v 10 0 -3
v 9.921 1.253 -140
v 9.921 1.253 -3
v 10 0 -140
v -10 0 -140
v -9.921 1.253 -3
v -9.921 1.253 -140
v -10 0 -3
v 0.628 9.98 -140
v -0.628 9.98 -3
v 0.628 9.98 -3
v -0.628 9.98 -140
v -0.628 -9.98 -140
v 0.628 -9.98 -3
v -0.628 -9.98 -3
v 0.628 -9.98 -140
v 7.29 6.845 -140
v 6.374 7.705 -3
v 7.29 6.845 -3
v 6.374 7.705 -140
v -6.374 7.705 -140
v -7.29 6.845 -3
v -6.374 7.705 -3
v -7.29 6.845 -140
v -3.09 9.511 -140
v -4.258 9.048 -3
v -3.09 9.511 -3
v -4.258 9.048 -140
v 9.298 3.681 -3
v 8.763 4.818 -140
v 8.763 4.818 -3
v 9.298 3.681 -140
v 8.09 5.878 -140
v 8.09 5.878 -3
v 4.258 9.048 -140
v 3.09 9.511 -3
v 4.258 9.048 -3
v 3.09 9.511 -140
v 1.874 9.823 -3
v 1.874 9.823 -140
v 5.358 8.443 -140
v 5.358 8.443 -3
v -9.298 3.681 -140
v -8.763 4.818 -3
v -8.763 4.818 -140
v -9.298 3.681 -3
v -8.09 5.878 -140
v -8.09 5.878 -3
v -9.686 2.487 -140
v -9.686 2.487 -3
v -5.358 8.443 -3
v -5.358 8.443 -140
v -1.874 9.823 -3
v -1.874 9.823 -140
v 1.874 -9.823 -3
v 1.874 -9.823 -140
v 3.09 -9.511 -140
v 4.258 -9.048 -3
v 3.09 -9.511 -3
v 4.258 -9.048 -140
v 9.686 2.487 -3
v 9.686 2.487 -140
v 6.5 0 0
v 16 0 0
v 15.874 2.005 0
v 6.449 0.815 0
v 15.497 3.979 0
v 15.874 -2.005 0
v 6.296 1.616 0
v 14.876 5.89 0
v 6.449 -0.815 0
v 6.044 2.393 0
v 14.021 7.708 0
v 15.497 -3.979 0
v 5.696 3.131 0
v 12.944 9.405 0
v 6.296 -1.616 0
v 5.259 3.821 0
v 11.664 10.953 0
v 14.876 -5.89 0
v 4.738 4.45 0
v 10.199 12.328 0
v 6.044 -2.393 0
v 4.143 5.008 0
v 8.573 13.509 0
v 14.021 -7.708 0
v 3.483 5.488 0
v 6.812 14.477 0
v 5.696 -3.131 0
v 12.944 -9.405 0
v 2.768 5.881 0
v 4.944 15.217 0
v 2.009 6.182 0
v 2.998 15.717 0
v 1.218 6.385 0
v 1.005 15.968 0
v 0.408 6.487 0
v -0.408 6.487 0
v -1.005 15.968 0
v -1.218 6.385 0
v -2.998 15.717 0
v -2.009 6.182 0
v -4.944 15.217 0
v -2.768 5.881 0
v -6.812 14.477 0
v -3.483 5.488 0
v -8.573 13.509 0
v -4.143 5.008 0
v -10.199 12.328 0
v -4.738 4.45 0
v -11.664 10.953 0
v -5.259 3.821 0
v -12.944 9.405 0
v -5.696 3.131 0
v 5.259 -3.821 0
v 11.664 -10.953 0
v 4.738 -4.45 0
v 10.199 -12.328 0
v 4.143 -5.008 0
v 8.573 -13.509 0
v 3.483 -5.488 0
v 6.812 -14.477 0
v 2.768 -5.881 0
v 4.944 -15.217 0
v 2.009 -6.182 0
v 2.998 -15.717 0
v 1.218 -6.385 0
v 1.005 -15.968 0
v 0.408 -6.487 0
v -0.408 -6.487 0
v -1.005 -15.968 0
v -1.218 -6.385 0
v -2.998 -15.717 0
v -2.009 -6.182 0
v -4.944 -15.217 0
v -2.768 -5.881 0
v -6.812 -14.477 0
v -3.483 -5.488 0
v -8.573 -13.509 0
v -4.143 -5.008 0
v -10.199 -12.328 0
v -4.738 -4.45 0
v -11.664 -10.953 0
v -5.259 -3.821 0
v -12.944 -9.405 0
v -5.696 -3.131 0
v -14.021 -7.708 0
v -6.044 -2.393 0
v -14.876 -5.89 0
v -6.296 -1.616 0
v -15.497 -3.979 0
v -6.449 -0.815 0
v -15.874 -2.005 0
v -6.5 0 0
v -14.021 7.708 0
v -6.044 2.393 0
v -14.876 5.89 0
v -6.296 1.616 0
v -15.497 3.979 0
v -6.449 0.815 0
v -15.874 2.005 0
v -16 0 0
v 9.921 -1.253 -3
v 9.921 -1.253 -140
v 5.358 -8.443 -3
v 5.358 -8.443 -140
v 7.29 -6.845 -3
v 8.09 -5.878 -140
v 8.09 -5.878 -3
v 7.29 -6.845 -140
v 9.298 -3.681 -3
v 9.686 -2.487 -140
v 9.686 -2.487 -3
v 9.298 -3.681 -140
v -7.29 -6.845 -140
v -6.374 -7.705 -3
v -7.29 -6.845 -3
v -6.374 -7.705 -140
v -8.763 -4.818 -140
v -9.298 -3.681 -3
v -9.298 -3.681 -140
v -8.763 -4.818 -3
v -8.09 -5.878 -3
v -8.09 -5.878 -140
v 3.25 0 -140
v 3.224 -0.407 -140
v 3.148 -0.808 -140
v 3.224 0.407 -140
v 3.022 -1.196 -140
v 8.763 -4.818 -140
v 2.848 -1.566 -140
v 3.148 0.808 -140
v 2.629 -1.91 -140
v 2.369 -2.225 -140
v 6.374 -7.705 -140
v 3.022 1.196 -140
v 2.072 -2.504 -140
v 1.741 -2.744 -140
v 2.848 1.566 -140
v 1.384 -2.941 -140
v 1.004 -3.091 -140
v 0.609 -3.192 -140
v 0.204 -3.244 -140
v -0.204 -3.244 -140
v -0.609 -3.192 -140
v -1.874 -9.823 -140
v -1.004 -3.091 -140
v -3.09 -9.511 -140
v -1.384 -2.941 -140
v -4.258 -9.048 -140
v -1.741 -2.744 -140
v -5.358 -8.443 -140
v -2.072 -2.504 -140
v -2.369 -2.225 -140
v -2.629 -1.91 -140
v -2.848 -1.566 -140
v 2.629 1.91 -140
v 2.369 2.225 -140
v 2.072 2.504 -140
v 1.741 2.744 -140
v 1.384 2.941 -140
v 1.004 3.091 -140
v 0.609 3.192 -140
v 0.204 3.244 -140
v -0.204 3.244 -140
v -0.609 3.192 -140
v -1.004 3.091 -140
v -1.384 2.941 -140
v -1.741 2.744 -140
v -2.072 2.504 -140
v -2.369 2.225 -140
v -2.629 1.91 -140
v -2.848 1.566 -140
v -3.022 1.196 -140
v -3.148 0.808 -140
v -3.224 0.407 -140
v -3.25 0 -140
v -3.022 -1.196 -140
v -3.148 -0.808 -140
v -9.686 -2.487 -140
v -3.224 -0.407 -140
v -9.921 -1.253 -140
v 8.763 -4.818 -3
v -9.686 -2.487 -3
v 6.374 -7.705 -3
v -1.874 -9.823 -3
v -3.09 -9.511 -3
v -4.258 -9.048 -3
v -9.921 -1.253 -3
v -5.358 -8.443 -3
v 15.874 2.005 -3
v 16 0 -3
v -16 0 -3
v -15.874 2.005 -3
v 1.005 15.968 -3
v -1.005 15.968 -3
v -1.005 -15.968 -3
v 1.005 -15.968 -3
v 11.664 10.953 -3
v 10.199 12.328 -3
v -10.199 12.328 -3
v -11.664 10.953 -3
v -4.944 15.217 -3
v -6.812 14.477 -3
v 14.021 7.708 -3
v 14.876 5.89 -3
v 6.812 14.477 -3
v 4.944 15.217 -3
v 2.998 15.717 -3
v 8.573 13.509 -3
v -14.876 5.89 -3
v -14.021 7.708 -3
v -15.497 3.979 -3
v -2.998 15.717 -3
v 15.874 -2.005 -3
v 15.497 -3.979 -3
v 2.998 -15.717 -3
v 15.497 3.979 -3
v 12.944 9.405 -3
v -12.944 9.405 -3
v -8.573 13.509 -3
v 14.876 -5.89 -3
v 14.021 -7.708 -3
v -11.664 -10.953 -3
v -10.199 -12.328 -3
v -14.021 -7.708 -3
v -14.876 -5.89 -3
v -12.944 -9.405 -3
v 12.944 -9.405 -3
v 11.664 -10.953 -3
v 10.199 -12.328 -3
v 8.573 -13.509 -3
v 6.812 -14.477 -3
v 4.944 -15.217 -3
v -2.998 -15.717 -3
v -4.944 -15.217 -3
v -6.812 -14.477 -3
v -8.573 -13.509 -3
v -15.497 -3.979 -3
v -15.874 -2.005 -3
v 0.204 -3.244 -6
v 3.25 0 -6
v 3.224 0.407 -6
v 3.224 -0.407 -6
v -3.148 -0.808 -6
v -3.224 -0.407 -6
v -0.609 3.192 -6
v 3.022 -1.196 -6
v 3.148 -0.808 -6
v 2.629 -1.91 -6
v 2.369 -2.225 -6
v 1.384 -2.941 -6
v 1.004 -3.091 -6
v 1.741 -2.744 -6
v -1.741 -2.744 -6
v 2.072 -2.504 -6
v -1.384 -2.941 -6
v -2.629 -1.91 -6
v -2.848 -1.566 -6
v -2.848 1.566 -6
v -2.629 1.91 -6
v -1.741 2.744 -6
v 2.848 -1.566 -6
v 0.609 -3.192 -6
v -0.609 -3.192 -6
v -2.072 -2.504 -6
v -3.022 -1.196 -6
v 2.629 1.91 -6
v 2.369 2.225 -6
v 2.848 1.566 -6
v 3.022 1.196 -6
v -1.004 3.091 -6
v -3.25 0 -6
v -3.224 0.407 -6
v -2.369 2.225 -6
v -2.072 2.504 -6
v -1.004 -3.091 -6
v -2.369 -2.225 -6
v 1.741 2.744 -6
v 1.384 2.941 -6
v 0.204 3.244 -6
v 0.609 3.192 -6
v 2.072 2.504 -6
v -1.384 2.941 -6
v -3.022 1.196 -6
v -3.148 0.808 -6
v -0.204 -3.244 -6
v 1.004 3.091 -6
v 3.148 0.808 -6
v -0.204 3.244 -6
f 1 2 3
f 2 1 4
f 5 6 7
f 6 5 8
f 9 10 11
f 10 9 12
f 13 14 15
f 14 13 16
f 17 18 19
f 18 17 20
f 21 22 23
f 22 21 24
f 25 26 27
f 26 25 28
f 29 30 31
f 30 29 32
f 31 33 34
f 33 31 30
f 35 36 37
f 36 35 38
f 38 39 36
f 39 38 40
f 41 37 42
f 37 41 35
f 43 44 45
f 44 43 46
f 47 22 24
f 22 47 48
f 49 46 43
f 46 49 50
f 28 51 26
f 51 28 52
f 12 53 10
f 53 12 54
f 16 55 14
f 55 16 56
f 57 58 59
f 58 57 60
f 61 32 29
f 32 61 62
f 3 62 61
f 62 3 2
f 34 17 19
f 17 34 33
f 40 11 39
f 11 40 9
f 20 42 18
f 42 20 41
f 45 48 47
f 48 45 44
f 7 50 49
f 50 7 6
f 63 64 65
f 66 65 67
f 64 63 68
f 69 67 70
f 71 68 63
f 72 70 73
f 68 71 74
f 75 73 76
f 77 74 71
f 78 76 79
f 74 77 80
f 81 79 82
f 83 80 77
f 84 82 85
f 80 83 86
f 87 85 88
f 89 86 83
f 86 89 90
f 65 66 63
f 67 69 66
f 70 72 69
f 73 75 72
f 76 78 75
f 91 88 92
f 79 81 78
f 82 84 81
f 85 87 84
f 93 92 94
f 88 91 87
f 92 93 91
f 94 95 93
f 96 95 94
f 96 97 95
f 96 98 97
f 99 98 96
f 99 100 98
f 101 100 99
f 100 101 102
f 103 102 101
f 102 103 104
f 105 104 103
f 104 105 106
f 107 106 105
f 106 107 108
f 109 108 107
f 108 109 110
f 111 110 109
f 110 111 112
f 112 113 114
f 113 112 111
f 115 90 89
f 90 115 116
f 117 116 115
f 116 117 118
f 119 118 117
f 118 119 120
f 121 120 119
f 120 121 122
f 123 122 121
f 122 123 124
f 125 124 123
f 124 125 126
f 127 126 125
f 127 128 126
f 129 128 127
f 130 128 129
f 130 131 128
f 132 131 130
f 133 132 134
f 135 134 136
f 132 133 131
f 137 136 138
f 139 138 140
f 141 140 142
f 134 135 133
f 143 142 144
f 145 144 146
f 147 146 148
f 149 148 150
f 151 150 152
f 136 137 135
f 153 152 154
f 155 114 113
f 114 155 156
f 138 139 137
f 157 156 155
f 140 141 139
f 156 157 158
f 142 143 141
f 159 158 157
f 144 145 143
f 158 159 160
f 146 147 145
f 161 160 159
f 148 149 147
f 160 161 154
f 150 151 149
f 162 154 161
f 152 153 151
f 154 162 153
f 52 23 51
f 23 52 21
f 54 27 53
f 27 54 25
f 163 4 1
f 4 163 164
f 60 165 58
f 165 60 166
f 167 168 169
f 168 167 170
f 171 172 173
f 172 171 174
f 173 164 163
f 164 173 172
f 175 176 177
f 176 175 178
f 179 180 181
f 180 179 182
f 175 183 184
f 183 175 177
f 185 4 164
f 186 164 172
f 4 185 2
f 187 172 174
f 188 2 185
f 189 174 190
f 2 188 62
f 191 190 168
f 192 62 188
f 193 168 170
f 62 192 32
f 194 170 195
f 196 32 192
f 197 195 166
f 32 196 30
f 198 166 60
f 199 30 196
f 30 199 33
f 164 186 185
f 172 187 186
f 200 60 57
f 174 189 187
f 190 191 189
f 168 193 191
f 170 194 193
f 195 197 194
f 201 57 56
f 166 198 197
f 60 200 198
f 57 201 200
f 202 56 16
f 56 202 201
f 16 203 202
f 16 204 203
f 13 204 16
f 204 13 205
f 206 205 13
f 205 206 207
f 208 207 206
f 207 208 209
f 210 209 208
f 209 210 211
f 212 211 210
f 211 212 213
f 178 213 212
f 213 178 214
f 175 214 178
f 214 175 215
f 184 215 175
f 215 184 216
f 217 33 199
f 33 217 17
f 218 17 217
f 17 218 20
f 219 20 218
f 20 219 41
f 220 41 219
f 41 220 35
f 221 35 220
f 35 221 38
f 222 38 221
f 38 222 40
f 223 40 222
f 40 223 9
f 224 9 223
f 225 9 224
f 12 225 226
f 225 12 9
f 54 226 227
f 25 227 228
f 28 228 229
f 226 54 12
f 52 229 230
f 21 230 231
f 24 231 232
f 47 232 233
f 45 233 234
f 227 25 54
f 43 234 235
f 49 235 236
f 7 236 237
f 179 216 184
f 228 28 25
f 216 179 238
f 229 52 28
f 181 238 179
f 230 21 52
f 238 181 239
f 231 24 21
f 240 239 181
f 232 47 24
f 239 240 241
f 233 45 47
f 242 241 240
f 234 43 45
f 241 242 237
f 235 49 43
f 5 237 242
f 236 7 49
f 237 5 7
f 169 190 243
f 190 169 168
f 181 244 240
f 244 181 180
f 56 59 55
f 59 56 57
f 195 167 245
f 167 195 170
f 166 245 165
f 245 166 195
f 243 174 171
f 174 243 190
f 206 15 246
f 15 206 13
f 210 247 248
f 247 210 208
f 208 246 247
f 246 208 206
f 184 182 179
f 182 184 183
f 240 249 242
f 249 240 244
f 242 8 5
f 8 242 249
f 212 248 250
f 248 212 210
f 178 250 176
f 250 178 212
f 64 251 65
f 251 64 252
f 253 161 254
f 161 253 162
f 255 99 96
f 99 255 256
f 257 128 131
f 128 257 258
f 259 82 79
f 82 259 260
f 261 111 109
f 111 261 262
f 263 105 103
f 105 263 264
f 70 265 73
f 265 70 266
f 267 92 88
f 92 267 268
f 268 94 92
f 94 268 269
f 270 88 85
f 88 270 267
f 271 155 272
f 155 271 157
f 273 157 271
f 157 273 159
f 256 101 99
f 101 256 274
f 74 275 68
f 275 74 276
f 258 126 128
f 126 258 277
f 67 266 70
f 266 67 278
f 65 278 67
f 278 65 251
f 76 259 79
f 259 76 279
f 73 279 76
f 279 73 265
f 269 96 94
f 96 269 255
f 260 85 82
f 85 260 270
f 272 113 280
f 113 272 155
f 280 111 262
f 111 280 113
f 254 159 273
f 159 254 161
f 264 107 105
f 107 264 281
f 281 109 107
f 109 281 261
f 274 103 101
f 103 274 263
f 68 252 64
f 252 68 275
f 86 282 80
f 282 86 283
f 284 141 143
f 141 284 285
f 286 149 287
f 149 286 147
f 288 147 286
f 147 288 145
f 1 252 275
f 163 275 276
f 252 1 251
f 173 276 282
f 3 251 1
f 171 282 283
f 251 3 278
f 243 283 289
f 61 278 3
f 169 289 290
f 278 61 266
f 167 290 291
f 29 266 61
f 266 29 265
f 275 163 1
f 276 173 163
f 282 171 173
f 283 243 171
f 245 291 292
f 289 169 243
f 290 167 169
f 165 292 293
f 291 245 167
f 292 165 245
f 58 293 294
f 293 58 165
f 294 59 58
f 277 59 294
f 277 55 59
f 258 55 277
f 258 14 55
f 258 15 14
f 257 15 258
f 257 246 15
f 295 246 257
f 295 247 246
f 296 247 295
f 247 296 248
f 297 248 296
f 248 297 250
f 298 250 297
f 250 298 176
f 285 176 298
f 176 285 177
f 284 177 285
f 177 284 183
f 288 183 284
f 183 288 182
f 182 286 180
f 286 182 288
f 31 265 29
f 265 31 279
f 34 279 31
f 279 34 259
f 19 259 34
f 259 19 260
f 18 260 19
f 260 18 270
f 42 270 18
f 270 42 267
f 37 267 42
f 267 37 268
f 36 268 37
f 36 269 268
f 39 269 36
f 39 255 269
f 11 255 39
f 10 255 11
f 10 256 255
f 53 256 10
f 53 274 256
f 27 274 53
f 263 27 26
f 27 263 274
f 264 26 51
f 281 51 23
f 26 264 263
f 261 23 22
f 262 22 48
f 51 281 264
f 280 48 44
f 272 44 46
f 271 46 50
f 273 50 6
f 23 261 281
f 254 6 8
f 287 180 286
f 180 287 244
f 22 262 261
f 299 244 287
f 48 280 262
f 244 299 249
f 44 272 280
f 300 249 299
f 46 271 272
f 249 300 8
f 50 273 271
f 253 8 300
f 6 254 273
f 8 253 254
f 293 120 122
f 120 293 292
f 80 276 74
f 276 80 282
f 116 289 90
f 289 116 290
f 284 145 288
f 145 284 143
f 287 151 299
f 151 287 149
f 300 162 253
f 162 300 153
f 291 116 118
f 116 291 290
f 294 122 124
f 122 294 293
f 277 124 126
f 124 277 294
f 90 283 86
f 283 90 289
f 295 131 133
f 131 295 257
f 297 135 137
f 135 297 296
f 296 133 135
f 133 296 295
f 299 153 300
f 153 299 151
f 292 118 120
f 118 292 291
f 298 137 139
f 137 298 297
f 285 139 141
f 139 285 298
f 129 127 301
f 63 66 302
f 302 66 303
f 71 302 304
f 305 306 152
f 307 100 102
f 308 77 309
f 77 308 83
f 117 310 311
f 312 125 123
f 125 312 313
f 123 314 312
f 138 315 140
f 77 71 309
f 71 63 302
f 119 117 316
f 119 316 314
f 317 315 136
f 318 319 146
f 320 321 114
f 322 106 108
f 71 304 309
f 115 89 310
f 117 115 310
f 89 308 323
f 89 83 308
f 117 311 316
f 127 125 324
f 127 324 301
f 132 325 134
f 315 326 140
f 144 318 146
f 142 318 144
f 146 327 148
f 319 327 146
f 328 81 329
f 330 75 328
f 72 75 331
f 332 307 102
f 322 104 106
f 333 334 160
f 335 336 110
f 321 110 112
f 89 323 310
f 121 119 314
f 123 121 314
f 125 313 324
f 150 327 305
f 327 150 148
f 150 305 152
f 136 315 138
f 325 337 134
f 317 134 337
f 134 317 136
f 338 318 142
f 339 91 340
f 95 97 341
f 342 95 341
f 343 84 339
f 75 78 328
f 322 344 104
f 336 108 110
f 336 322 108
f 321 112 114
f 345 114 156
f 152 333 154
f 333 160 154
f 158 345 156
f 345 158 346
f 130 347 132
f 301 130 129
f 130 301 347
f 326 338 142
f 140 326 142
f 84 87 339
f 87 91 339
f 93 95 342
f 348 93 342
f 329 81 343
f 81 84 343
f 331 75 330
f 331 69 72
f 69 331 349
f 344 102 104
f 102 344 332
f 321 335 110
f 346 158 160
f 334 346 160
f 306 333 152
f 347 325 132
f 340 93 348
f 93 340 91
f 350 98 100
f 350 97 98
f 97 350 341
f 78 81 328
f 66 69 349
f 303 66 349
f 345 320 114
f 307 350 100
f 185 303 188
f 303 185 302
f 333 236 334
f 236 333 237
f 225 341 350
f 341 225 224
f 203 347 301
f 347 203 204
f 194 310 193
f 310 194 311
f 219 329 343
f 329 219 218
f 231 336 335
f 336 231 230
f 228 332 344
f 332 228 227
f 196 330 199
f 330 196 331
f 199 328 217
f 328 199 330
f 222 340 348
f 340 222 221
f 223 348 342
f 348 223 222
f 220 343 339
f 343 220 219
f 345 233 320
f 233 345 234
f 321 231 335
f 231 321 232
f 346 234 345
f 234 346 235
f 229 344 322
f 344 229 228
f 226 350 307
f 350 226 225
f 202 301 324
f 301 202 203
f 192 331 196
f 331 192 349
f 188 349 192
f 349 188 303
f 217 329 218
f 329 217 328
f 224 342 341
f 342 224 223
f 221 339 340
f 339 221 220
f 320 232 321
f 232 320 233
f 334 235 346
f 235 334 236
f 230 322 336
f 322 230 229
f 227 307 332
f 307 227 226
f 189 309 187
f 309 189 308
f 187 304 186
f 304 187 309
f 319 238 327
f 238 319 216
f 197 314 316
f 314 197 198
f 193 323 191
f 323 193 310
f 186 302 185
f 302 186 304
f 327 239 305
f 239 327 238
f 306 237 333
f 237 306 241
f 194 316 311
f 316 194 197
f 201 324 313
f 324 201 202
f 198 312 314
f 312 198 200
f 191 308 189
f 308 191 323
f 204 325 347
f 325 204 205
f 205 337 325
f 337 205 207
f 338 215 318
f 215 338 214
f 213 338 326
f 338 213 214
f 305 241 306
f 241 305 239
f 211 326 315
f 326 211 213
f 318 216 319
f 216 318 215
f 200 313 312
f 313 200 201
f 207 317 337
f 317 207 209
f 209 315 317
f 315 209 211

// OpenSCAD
$fn = 50;


difference() {
	union() {
		translate(v = [0, 0, -140.0000000000]) {
			cylinder(h = 140, r = 10.0000000000);
		}
		translate(v = [0, 0, -3.0000000000]) {
			cylinder(h = 3, r = 16.0000000000);
		}
	}
	union() {
		translate(v = [0, 0, 0]) {
			rotate(a = [0, 0, 0]) {
				difference() {
					union() {
						#translate(v = [0, 0, -140.0000000000]) {
							cylinder(h = 140, r = 2.2500000000);
						}
						#translate(v = [0, 0, -6]) {
							cylinder(h = 6, r1 = 3.2500000000, r2 = 6.5000000000);
						}
						#translate(v = [0, 0, -140.0000000000]) {
							cylinder(h = 140, r = 3.2500000000);
						}
						#translate(v = [0, 0, -140.0000000000]) {
							cylinder(h = 140, r = 2.2500000000);
						}
					}
					union();
				}
			}
		}
	}
}
